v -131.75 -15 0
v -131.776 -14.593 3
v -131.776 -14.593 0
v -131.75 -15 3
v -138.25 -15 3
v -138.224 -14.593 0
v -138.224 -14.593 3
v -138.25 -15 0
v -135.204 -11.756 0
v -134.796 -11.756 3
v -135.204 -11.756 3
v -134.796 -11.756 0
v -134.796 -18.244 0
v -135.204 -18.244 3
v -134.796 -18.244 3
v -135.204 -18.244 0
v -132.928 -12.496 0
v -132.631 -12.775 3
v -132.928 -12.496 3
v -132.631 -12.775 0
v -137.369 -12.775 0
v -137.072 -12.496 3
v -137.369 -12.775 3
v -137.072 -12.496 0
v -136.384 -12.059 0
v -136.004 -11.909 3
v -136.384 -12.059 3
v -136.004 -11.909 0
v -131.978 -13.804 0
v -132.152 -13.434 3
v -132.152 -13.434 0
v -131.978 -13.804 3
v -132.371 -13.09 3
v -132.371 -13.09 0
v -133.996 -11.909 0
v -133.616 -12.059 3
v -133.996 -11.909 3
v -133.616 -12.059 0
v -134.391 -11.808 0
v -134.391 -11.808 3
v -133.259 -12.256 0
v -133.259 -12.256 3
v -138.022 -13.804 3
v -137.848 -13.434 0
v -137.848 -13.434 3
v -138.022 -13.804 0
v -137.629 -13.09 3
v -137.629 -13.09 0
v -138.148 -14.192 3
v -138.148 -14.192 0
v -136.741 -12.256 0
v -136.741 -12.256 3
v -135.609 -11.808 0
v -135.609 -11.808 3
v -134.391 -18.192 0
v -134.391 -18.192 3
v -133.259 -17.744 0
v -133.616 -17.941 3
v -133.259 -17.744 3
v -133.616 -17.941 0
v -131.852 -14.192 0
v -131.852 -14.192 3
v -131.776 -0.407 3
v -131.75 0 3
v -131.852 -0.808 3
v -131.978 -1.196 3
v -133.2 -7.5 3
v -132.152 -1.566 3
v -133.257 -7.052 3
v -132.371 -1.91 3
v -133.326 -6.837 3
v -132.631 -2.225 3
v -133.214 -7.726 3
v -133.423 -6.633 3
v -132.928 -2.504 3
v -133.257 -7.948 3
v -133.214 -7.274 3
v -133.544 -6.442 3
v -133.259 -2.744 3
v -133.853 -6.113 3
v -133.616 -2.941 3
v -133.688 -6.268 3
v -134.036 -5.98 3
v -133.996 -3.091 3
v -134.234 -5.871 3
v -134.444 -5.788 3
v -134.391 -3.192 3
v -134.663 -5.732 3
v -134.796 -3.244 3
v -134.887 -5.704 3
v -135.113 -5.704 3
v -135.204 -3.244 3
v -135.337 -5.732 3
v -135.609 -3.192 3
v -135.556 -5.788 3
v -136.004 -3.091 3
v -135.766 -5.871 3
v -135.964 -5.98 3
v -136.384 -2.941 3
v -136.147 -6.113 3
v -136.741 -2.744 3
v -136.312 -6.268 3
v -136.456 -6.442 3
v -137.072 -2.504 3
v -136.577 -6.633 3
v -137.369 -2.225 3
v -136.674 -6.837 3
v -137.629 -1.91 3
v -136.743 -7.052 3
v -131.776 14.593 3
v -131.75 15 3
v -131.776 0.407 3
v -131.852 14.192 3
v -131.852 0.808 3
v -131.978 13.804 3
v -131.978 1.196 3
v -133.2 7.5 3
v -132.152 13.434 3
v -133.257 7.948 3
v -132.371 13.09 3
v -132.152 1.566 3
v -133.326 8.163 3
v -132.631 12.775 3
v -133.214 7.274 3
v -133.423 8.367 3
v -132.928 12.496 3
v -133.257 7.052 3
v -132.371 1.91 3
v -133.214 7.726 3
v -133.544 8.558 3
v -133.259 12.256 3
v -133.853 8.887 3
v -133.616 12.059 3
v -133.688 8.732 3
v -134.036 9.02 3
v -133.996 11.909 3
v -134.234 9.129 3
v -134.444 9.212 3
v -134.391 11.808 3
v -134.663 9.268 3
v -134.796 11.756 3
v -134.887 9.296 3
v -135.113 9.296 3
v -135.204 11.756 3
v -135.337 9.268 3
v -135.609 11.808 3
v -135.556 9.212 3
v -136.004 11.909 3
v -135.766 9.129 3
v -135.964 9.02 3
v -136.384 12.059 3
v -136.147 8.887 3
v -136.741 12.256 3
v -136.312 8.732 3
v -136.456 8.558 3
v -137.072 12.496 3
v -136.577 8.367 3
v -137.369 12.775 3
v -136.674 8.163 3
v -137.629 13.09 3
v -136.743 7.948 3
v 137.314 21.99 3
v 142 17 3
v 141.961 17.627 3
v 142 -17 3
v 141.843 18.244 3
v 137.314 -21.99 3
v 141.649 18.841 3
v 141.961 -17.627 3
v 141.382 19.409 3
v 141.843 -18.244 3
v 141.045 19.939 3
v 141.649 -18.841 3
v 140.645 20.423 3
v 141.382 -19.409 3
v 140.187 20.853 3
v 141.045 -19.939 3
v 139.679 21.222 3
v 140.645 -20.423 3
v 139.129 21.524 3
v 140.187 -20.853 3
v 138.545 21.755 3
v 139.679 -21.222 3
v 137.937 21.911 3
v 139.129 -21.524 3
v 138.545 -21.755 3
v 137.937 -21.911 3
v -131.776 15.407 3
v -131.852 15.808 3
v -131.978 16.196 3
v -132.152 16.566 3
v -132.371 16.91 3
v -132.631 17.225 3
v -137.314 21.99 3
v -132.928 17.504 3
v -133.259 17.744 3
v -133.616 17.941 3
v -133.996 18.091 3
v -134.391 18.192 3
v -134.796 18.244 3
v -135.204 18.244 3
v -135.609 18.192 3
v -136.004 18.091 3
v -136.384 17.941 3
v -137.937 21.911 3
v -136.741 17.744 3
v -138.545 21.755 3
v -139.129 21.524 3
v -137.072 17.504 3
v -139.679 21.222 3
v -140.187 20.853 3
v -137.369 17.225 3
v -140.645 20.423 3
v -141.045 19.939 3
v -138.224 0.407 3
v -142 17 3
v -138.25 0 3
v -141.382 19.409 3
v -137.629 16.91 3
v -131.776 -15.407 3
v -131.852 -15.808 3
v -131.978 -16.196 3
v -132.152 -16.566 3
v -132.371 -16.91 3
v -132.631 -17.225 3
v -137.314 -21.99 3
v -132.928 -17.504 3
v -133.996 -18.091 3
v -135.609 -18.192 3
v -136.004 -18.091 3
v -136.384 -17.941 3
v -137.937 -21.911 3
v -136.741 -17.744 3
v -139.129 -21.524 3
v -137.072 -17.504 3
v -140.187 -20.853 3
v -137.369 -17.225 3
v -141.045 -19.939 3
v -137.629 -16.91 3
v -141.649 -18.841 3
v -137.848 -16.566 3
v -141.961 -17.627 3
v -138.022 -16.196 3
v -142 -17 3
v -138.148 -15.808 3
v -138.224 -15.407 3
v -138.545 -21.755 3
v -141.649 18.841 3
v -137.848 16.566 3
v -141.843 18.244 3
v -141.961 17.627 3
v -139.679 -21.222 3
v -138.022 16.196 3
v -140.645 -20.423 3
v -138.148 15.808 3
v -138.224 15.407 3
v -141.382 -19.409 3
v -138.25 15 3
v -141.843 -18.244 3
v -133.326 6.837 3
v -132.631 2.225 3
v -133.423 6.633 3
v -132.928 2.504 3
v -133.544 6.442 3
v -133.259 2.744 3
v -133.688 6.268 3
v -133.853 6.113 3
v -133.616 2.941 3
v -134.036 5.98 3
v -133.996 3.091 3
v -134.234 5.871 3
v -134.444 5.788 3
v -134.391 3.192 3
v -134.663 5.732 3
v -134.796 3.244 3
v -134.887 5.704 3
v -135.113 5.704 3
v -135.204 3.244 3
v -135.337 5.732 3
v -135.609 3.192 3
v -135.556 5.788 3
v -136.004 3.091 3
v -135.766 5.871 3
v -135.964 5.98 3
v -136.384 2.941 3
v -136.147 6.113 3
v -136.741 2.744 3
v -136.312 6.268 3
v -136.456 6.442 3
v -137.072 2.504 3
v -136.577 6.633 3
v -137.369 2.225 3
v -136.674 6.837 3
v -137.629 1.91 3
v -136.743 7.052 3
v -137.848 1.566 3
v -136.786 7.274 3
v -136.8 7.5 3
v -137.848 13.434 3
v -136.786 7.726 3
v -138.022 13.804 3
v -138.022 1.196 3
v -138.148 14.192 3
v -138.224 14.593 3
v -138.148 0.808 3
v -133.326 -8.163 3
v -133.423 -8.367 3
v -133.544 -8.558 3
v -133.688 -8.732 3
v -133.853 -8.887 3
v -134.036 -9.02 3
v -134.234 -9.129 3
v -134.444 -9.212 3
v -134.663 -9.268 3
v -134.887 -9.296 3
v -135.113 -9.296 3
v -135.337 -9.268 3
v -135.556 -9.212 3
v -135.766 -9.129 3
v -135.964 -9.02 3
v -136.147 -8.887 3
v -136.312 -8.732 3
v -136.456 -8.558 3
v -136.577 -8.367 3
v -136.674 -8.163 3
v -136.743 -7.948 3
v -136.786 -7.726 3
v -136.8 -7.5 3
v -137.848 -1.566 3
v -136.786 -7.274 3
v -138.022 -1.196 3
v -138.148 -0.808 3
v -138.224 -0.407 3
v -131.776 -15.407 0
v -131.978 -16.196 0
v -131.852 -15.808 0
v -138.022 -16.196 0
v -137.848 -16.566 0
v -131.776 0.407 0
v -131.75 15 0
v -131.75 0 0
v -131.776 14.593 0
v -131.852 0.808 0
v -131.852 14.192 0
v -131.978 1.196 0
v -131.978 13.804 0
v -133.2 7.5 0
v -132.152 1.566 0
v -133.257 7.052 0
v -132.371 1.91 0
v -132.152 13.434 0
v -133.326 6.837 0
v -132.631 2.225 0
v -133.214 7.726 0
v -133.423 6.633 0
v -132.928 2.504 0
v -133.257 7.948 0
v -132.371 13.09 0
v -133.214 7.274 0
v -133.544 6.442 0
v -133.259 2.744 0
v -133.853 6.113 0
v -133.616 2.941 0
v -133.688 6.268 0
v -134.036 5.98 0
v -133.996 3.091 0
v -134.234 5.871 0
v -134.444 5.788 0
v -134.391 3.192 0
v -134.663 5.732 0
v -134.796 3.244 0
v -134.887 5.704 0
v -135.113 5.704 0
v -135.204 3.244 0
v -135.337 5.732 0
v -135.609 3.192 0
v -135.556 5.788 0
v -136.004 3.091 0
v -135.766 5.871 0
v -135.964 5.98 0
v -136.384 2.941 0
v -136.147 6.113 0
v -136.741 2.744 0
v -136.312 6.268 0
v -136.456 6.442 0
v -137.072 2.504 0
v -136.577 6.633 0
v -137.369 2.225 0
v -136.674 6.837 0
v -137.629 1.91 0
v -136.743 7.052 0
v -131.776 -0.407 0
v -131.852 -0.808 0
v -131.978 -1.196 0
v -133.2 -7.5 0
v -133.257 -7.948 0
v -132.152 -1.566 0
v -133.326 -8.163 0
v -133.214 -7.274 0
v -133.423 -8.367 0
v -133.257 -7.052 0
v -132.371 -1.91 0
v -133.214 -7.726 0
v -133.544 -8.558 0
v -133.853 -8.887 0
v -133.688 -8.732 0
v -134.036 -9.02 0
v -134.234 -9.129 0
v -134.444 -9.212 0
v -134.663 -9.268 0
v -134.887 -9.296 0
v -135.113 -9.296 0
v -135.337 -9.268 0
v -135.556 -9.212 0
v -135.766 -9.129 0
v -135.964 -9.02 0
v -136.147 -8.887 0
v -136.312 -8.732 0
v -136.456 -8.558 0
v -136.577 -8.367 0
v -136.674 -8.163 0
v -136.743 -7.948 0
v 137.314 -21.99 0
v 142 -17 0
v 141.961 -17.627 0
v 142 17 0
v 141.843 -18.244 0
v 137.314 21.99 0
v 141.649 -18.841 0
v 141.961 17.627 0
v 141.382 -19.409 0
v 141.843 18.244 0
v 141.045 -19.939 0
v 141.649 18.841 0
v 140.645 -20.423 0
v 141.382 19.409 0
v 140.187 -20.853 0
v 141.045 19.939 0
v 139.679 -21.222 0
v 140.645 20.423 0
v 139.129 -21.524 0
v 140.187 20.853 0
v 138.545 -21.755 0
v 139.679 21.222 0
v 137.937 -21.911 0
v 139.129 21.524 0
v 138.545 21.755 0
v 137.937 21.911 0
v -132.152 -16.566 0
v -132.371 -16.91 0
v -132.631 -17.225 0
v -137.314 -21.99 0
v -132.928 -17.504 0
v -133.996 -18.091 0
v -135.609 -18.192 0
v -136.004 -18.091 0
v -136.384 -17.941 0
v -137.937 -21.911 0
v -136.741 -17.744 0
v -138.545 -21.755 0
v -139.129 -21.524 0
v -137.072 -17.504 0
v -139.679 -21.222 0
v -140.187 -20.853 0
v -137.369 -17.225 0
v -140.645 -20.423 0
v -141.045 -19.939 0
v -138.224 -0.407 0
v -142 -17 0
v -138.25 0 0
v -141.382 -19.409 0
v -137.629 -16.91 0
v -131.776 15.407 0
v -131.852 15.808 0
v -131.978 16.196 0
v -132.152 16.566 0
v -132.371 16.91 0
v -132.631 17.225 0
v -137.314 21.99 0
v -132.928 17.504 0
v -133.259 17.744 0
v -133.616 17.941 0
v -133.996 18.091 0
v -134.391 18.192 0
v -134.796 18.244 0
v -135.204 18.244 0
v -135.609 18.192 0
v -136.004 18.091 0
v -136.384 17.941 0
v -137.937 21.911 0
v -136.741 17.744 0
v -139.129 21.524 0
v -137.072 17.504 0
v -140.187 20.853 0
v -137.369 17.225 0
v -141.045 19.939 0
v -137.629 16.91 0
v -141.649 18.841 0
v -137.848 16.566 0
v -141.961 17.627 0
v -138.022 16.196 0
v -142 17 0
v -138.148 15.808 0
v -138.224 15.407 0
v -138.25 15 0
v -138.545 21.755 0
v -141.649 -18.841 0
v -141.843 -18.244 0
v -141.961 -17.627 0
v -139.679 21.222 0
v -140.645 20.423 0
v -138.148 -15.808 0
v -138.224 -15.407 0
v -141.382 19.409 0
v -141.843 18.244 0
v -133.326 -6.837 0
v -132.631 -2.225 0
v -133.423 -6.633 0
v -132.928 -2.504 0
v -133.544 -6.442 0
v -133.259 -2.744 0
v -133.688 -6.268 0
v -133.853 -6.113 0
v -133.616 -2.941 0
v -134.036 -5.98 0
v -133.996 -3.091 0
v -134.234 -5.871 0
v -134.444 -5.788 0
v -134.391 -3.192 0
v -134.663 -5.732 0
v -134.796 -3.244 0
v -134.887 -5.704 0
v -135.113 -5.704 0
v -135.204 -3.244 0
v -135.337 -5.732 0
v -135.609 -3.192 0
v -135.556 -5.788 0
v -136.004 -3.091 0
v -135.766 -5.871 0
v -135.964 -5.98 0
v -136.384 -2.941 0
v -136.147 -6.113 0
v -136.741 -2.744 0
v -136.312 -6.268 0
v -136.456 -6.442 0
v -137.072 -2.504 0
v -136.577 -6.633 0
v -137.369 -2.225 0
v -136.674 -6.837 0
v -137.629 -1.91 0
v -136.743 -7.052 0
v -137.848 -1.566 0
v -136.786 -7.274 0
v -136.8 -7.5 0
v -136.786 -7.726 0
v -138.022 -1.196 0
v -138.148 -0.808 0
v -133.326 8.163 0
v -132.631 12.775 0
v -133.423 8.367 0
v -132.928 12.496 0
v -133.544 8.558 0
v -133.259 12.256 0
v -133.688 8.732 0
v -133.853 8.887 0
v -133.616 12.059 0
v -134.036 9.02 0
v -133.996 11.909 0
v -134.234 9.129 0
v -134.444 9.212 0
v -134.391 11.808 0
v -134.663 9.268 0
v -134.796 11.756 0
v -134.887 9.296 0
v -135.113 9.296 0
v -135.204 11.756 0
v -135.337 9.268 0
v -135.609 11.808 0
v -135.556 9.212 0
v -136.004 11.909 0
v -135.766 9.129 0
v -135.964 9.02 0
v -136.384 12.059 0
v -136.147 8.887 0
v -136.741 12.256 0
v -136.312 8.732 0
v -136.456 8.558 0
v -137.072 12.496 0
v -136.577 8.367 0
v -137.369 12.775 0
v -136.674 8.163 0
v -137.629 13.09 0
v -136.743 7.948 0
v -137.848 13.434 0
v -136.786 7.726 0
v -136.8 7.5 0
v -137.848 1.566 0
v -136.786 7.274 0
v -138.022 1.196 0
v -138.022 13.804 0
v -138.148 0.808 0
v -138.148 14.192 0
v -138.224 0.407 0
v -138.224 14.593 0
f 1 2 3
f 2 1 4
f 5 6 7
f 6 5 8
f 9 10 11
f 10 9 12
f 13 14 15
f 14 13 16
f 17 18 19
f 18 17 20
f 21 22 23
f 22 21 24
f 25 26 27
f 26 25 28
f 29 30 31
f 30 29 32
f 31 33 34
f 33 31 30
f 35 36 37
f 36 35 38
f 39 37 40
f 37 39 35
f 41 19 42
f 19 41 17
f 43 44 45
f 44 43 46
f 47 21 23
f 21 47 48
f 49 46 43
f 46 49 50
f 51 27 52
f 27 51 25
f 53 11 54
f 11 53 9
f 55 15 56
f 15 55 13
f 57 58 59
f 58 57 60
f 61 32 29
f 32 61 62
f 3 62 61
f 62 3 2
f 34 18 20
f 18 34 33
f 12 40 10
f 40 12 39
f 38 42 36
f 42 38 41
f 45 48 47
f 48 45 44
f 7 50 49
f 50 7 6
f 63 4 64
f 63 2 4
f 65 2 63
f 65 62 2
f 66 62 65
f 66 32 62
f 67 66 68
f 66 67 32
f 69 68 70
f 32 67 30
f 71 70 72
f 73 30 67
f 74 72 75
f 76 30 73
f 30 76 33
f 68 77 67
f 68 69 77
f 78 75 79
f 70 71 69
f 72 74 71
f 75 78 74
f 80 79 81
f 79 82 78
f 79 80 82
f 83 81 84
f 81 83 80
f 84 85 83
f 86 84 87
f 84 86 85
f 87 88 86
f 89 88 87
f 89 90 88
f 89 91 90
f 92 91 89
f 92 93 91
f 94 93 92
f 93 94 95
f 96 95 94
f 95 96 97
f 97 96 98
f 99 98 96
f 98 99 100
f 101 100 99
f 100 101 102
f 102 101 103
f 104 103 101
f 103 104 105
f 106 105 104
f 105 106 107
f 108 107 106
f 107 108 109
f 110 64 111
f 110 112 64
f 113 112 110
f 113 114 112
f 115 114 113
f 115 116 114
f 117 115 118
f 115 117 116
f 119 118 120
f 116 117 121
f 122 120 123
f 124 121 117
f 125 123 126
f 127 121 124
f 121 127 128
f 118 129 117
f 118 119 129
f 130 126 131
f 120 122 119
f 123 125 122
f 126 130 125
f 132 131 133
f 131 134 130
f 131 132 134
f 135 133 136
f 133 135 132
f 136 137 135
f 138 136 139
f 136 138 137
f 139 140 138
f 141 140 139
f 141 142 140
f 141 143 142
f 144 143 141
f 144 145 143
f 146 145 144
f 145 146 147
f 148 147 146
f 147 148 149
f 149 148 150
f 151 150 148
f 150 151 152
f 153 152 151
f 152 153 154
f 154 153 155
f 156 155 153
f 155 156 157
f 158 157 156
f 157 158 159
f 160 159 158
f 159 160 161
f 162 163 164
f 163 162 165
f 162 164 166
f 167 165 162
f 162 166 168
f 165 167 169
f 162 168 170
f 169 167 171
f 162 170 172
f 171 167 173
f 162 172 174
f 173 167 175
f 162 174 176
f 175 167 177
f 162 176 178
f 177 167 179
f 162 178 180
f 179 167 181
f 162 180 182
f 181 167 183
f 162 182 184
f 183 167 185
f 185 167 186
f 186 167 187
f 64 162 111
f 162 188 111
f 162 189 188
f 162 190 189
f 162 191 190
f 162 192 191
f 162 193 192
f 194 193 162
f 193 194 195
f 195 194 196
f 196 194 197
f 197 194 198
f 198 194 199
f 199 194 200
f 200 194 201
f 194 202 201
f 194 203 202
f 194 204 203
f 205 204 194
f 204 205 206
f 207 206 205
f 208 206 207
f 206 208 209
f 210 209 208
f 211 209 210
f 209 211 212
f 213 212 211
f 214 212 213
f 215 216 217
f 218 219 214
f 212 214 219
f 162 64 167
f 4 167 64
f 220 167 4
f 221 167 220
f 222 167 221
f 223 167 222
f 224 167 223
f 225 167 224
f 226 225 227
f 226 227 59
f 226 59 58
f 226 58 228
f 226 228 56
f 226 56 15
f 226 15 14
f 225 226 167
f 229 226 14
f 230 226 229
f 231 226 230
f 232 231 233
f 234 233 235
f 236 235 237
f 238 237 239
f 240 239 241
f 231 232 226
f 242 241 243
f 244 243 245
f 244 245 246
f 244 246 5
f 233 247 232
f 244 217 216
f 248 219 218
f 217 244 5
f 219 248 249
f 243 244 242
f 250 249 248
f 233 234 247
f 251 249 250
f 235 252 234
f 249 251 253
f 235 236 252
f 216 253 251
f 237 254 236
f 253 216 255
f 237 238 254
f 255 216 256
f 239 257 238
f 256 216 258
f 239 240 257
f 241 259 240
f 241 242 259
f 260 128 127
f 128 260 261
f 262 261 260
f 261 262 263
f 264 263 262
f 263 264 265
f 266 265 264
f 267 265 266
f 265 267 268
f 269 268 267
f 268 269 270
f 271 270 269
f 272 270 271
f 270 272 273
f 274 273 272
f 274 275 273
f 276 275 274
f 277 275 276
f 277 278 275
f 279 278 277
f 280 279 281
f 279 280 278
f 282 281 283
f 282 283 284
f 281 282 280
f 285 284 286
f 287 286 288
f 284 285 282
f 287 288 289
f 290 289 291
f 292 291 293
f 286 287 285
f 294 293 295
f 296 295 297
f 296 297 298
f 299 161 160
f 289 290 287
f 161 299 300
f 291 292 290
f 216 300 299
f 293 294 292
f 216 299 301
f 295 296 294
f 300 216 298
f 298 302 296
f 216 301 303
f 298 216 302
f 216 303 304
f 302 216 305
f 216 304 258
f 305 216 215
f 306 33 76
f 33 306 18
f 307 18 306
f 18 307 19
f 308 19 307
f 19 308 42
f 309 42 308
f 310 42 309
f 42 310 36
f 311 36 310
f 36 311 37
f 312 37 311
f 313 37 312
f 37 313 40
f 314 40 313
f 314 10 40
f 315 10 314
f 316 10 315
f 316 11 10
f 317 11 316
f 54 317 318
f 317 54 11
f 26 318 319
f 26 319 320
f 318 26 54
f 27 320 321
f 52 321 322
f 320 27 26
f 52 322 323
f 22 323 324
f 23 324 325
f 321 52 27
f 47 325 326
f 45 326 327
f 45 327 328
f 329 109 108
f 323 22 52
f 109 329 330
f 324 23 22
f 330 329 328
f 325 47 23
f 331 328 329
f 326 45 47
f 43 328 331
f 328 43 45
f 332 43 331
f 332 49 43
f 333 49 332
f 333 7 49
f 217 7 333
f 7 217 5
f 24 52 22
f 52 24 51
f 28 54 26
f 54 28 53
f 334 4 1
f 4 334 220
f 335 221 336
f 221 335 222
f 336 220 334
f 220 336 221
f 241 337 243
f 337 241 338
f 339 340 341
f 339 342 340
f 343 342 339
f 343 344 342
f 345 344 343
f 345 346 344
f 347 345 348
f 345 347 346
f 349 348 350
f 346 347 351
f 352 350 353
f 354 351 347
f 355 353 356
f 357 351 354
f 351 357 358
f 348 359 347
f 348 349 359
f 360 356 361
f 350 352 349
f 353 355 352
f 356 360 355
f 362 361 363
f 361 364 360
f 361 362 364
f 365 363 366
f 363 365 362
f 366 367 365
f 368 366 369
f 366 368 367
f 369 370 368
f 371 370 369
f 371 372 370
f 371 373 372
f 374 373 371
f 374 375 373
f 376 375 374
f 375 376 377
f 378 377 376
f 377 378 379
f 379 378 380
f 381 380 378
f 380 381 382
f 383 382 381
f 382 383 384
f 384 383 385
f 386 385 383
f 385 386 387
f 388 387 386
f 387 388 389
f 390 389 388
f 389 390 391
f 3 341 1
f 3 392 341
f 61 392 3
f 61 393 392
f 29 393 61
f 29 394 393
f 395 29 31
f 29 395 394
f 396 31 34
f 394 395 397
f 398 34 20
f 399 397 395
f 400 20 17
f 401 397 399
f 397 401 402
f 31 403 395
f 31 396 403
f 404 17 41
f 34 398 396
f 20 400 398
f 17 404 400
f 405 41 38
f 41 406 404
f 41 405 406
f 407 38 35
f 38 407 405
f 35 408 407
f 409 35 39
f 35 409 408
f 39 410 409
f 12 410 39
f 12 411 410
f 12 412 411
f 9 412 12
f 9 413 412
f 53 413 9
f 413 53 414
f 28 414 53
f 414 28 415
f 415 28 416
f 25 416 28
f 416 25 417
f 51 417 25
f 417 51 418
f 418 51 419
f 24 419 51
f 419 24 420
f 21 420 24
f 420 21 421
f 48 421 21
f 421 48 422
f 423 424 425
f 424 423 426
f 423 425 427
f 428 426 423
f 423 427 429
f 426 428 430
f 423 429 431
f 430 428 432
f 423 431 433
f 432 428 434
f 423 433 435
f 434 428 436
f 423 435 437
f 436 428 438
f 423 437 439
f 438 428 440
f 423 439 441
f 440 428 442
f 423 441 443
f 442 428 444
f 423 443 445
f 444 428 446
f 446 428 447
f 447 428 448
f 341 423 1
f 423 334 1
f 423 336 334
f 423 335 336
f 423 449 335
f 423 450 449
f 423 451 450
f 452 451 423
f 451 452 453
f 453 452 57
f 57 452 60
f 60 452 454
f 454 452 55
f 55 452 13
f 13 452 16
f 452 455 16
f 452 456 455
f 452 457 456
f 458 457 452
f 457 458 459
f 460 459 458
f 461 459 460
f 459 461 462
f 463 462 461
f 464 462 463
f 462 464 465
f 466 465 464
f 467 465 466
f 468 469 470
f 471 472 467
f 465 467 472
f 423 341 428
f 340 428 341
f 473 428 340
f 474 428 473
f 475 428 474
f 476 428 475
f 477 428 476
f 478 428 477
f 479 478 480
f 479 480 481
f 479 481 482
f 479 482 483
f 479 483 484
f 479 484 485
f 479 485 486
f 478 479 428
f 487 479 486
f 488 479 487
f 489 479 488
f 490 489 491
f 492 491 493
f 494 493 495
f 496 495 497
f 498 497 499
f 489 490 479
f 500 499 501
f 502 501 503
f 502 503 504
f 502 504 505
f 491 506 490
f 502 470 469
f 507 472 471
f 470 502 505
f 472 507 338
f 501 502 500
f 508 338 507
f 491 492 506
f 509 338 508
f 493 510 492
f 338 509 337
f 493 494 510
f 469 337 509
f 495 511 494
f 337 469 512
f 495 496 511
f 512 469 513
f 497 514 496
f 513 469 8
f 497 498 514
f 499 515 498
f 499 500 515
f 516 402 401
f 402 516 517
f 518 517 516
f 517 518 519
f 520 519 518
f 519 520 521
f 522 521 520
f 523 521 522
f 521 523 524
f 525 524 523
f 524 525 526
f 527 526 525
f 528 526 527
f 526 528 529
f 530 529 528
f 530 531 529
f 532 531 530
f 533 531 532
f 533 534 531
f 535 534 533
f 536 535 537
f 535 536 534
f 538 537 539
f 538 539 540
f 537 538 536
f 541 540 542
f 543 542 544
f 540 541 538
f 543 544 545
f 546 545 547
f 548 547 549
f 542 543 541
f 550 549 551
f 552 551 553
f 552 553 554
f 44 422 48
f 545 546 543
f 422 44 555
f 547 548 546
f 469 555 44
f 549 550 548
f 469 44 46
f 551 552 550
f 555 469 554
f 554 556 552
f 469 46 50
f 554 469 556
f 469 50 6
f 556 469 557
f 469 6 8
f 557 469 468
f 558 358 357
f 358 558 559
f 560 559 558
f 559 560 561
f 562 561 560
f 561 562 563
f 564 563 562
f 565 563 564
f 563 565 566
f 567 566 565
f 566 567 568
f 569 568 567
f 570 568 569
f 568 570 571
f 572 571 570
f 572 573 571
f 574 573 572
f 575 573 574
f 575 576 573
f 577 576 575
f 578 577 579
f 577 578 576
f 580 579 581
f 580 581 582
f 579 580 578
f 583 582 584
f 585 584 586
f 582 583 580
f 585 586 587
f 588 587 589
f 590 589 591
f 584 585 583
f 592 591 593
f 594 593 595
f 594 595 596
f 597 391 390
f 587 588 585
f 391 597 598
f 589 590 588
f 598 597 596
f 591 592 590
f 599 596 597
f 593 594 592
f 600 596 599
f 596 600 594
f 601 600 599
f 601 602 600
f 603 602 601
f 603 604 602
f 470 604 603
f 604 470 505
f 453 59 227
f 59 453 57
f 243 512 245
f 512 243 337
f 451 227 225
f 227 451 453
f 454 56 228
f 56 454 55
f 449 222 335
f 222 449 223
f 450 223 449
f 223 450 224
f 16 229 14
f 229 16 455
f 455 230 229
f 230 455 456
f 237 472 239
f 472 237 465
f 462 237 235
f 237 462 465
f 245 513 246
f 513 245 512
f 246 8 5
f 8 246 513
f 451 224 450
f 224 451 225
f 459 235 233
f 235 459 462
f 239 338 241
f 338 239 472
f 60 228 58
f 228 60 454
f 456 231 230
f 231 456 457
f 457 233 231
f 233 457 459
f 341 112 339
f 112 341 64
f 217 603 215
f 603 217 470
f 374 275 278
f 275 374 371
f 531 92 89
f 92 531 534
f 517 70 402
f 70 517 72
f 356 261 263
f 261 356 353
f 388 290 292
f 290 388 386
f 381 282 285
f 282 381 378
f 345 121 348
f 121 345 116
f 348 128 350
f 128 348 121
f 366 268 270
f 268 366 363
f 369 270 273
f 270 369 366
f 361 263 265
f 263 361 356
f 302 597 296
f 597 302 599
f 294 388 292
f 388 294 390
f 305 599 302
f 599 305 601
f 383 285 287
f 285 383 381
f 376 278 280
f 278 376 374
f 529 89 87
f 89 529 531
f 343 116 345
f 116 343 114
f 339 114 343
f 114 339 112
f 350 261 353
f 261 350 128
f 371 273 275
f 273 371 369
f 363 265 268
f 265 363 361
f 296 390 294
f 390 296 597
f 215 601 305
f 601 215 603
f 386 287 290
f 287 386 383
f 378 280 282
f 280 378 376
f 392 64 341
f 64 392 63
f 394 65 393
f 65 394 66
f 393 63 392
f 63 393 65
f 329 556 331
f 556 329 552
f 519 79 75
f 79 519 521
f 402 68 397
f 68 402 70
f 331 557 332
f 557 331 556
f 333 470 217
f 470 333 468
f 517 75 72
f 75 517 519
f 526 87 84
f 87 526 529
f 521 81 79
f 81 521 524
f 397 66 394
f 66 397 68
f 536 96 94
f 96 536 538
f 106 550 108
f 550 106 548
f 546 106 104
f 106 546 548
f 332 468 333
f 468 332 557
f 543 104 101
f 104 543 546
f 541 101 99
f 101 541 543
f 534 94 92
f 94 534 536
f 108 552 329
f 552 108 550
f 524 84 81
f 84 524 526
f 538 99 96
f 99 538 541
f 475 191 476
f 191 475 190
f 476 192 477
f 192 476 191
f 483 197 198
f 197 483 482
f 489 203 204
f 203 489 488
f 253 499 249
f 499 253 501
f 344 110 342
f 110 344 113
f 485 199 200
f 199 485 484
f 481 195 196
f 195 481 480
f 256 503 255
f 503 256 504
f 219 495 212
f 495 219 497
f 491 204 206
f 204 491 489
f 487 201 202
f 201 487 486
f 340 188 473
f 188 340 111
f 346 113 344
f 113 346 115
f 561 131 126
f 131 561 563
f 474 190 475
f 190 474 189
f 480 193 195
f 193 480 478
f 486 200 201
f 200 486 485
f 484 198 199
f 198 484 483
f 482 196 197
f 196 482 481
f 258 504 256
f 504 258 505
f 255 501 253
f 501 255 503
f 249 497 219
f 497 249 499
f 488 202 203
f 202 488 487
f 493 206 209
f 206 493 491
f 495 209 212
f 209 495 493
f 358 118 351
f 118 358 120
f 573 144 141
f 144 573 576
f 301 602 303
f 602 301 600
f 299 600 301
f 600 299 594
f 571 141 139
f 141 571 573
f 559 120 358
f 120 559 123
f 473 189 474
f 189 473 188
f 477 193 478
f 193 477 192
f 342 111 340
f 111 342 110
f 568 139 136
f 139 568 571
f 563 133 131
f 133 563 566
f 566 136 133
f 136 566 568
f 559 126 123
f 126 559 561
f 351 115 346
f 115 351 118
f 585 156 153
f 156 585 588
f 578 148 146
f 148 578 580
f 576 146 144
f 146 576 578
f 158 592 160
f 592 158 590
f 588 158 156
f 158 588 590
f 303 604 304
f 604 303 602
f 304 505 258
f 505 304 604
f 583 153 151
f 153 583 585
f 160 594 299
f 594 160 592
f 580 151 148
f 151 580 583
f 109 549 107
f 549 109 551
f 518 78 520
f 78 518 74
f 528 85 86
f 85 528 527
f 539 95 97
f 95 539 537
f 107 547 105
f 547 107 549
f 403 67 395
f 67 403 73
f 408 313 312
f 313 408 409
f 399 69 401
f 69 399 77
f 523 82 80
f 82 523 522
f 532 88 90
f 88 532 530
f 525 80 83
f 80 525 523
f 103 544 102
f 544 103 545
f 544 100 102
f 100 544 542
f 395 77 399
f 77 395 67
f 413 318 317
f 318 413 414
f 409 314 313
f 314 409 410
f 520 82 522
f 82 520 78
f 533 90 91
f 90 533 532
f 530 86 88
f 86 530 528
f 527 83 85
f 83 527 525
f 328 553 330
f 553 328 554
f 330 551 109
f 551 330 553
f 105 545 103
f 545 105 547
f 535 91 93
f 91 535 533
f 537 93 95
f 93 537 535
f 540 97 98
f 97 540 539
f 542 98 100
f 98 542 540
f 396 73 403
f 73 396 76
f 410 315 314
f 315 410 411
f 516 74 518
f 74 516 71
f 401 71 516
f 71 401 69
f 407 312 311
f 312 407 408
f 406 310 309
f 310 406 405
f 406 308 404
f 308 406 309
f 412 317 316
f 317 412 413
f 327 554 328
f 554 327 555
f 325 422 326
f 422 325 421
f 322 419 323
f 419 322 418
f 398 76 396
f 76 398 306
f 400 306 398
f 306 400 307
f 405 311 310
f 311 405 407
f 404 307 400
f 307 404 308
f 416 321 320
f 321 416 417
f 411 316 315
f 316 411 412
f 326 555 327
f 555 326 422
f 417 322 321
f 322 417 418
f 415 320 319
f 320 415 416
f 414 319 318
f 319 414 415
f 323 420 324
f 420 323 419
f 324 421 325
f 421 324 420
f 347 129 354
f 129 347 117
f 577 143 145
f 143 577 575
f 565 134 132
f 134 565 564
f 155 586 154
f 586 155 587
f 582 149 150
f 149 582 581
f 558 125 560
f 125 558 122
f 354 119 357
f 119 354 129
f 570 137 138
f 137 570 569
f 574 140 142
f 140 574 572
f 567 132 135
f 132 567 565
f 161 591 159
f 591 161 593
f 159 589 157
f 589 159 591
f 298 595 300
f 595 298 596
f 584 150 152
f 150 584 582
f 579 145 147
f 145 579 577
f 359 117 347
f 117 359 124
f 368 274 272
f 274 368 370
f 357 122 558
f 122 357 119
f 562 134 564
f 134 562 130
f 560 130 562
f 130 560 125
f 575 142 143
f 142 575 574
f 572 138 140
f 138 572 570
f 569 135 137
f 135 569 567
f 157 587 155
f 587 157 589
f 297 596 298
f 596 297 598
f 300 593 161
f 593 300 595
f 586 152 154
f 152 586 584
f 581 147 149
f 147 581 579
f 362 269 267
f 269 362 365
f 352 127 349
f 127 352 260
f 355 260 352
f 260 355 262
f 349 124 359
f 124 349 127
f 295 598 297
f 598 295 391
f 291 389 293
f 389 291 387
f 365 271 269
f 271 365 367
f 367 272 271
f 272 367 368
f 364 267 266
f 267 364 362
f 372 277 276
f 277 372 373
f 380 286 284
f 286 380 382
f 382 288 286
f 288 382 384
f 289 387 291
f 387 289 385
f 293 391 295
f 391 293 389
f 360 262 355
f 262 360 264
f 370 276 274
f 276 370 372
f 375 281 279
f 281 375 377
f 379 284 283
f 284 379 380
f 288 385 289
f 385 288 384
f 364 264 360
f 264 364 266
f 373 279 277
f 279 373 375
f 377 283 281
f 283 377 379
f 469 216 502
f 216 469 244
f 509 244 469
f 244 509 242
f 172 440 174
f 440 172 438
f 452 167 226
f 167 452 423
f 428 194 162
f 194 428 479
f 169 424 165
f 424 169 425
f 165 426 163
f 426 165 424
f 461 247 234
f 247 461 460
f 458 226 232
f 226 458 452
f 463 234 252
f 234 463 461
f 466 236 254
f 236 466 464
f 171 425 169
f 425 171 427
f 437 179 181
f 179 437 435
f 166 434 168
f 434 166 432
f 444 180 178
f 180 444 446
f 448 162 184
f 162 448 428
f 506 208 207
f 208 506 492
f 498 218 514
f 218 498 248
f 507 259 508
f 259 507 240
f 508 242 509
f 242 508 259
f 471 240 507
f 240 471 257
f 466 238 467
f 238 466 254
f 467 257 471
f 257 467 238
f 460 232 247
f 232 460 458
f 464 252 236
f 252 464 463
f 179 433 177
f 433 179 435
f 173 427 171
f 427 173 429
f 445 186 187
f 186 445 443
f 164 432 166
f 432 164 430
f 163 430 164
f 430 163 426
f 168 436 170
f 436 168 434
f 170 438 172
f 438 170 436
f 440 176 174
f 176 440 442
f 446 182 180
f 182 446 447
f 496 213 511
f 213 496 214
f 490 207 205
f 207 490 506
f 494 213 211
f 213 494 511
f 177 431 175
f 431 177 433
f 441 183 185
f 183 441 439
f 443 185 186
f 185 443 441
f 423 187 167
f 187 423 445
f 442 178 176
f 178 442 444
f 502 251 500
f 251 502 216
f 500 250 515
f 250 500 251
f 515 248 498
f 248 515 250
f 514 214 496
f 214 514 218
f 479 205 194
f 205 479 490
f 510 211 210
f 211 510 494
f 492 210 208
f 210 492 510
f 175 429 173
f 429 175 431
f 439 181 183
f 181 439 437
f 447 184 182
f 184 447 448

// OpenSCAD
$fn = 50;


difference() {
	union() {
		hull() {
			translate(v = [-137.0000000000, 17.0000000000, 0]) {
				cylinder(h = 3, r = 5);
			}
			translate(v = [137.0000000000, 17.0000000000, 0]) {
				cylinder(h = 3, r = 5);
			}
			translate(v = [-137.0000000000, -17.0000000000, 0]) {
				cylinder(h = 3, r = 5);
			}
			translate(v = [137.0000000000, -17.0000000000, 0]) {
				cylinder(h = 3, r = 5);
			}
		}
	}
	union() {
		translate(v = [-135.0000000000, -15.0000000000, 0]) {
			cylinder(h = 3, r = 3.2500000000);
		}
		translate(v = [-135.0000000000, 0.0000000000, 0]) {
			cylinder(h = 3, r = 3.2500000000);
		}
		translate(v = [-135.0000000000, 15.0000000000, 0]) {
			cylinder(h = 3, r = 3.2500000000);
		}
		translate(v = [-135.0000000000, -15.0000000000, 0]) {
			cylinder(h = 3, r = 1.8000000000);
		}
		translate(v = [-135.0000000000, -7.5000000000, 0]) {
			cylinder(h = 3, r = 1.8000000000);
		}
		translate(v = [-135.0000000000, 0.0000000000, 0]) {
			cylinder(h = 3, r = 1.8000000000);
		}
		translate(v = [-135.0000000000, 7.5000000000, 0]) {
			cylinder(h = 3, r = 1.8000000000);
		}
		translate(v = [-135.0000000000, 15.0000000000, 0]) {
			cylinder(h = 3, r = 1.8000000000);
		}
		translate(v = [-135.0000000000, -15.0000000000, 0]) {
			cylinder(h = 3, r = 1.8000000000);
		}
		translate(v = [-135.0000000000, -7.5000000000, 0]) {
			cylinder(h = 3, r = 1.8000000000);
		}
		translate(v = [-135.0000000000, 0.0000000000, 0]) {
			cylinder(h = 3, r = 1.8000000000);
		}
		translate(v = [-135.0000000000, 7.5000000000, 0]) {
			cylinder(h = 3, r = 1.8000000000);
		}
		translate(v = [-135.0000000000, 15.0000000000, 0]) {
			cylinder(h = 3, r = 1.8000000000);
		}
		translate(v = [-135.0000000000, -15.0000000000, 0]) {
			cylinder(h = 3, r = 1.8000000000);
		}
		translate(v = [-135.0000000000, -7.5000000000, 0]) {
			cylinder(h = 3, r = 1.8000000000);
		}
		translate(v = [-135.0000000000, 0.0000000000, 0]) {
			cylinder(h = 3, r = 1.8000000000);
		}
		translate(v = [-135.0000000000, 7.5000000000, 0]) {
			cylinder(h = 3, r = 1.8000000000);
		}
		translate(v = [-135.0000000000, 15.0000000000, 0]) {
			cylinder(h = 3, r = 1.8000000000);
		}
	}
}
